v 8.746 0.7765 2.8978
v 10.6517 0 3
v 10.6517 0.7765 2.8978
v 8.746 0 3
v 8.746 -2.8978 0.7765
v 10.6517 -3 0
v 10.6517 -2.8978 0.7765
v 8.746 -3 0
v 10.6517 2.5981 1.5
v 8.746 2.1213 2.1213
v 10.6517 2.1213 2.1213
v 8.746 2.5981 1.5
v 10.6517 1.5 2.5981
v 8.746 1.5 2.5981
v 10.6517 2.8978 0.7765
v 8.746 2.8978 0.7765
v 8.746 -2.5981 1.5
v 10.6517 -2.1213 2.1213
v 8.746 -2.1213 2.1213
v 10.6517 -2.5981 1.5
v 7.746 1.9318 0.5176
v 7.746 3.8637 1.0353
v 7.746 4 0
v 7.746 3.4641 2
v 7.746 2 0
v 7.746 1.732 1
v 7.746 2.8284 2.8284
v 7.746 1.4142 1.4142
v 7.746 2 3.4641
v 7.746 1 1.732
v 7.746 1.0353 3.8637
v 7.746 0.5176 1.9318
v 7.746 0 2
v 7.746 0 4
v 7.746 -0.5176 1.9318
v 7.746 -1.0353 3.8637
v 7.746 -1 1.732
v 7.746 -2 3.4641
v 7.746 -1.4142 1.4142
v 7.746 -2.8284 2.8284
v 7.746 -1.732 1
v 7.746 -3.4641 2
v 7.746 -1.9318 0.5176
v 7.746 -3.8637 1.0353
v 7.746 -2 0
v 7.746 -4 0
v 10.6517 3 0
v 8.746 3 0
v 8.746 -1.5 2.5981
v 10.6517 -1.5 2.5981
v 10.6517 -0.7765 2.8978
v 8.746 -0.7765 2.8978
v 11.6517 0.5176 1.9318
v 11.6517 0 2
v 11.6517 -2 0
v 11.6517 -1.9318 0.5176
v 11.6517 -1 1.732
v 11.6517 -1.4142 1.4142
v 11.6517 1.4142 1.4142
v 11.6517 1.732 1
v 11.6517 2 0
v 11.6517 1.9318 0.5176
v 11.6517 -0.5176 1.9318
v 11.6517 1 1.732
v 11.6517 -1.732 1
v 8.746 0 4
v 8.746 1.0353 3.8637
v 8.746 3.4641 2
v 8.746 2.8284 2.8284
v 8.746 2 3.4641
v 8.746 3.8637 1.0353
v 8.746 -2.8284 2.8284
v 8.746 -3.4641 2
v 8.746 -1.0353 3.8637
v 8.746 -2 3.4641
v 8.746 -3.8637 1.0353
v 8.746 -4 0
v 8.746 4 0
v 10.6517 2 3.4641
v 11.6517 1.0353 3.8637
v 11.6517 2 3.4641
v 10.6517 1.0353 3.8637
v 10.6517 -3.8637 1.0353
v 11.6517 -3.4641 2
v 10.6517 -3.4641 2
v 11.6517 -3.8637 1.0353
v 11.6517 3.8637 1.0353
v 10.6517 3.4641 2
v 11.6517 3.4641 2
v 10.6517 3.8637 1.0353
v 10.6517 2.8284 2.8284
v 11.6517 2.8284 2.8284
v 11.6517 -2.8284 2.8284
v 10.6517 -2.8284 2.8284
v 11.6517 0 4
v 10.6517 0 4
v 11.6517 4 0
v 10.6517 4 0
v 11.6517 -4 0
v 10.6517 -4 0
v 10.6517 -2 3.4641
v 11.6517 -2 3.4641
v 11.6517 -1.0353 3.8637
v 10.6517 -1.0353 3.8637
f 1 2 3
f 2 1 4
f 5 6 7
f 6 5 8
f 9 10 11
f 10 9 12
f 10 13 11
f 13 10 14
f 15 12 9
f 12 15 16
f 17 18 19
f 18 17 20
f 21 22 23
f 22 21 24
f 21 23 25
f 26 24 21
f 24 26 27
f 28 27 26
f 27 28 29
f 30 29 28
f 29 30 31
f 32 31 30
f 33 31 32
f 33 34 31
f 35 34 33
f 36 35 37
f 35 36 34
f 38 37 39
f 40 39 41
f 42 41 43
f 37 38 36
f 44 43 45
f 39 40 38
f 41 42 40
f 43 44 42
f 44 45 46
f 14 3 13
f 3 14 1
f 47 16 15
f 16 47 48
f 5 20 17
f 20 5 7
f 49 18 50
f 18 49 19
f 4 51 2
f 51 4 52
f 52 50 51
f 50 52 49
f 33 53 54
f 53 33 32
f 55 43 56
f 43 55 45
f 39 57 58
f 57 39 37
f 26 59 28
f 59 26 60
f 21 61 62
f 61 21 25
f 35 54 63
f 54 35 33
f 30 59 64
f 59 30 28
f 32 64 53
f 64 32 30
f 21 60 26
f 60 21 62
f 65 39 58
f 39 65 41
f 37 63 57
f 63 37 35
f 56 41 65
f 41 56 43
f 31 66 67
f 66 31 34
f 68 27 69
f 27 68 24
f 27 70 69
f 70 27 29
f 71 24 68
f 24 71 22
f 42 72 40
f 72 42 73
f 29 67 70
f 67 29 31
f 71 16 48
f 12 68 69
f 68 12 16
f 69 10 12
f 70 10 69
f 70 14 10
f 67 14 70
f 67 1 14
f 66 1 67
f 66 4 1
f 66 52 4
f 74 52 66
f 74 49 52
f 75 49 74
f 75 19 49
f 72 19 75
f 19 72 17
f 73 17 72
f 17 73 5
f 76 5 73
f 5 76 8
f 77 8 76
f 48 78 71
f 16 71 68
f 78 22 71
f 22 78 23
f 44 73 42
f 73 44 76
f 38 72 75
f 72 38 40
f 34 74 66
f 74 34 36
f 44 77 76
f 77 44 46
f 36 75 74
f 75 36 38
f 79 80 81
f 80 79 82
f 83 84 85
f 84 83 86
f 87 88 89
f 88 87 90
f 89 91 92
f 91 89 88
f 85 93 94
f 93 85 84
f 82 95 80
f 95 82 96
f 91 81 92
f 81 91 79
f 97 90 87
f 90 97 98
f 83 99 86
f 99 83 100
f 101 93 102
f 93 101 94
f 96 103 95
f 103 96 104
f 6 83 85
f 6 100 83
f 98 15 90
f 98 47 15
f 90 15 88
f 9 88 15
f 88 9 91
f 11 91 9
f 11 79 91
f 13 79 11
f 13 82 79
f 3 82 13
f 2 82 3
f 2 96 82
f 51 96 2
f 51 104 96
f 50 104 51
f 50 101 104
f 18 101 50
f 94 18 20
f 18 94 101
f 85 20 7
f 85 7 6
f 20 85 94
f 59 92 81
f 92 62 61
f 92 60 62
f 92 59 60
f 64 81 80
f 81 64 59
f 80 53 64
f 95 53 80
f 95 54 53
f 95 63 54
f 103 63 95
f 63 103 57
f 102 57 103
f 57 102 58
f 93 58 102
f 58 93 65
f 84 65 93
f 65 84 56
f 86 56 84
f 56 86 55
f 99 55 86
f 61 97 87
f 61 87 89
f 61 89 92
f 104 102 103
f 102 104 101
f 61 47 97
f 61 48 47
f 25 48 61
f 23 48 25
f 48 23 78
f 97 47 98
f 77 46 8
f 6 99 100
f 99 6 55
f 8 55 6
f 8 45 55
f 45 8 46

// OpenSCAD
// file: ../build_environments.scad
// build_environments.scad: modules to build level sections
//

module pool(diameter=10.0, wall_height=2.0, step_width=3.0, connections=[])
{
    difference() {
        union() {
        difference() {
            cylinder(h=0.5,r1=diameter+step_width,r2=diameter+step_width,$fn=48);
            translate([0,0,-0.1])
                cylinder(h=0.7,r1=diameter,r2=diameter,$fn=48);
        }
        difference() {
            cylinder(h=wall_height,r1=diameter+step_width+1.0,r2=diameter+step_width+1.0,$fn=48);
            translate([0,0,-0.1])
                cylinder(h=wall_height+0.2,r1=diameter+step_width,r2=diameter+step_width,$fn=48);
        }
        }
    
        for (c = connections)
        {
            rotate([0,90,0]) {
                angle = atan2(c[1],c[0]);
                rotate([-angle,0,0]) {
                    cylinder(h=diameter+5.0,r1=c[2],r2=c[2],$fn=48);
                }
            }
        }
    }
}

module straight(length=10.0, width=2.0, dy1=0.0, dy2=0.0, dz=0.0)
{
    dims = [0, 0, 0, 0, 0, (dz/length)];
    matrix = [
        [ 1, dims[0], dims[1], 0 ],
        [ dims[2], 1, dims[4], 0 ],
        [ dims[5], dims[3], 1, 0 ],
        [ 0, 0, 0, 1 ]
    ];
    multmatrix(matrix)
    difference() {
        translate([dy1,0,0])
        union() {
            rotate([0,90,0]) {
                difference() {
                    cylinder(h=(length-dy1-dy2),r1=width+1.0,r2=width+1.0,$fn=24);
                    translate([0,0,-0.1])
                        cylinder(h=(length-dy1-dy2+0.2),r1=width,r2=width,$fn=24);
                }
                difference() {
                    cylinder(h=1.0,r1=width+2.0,r2=width+2.0,$fn=24);
                    translate([0,0,-0.1])
                        cylinder(h=1.2,r1=width,r2=width,$fn=24);
                }
                translate([0,0,(length-dy1-dy2)-1.0]) {
                    difference() {
                        cylinder(h=1.0,r1=width+2.0,r2=width+2.0,$fn=24);
                        translate([0,0,-0.1])
                            cylinder(h=1.2,r1=width,r2=width,$fn=24);
                    }
                }
            }
        }
        translate([0,0,-(2*width+4.0)/2])
            cube([3*length,3*length,2*width+4.0],center=true);
    }
}

module curve(p0=[0,0], center=[0,0], dir=1, angle=0.0, width=2.0)
{
    radius = sqrt((p0[0]-center[0])*(p0[0]-center[0]) + (p0[1]-center[1])*(p0[1]-center[1]));
    if (dir == 0) {
        difference() {
            rotate([0,0,-90])
            difference() {
                rotate_extrude(angle = angle, convexity = 10, $fn=32)
                    translate([radius, 0, 0])
                        circle(r = width+1.0,$fn=24);
                rotate([0,0,-1.0])
                    rotate_extrude(angle = angle+2.0, convexity = 10, $fn=32)
                        translate([radius, 0, 0])
                            circle(r = width,$fn=24);
            }
            translate([0,0,-(2*width+4.0)/2])
                cube([5*radius,5*radius,2*width+4.0],center=true);
        }
    }
    else {
        difference() {
            rotate([0,0,90])
            difference() {
                rotate_extrude(angle = -angle, convexity = 10, $fn=32)
                    translate([radius, 0, 0])
                        circle(r = width+1.0,$fn=24);
                rotate([0,0,1.0])
                    rotate_extrude(angle = -angle-2.0, convexity = 10, $fn=32)
                        translate([radius, 0, 0])
                            circle(r = width,$fn=24);
            }
            translate([0,0,-(2*width+4.0)/2])
                cube([5*radius,5*radius,2*width+4.0],center=true);
        }
    }

}

// test pool
//pool(diameter=12.0000, wall_height=3.0000, step_width=3.0000, connections=[[0.0000,-26.0000,2.0000], [23.6074,0.0000,2.0000]]);

// test straight, slope
//straight(length=26.0000, width=2.0000, dy1=11.8322, dy2=6.7082, dz=0.0000);
//straight(length=29.1549, width=12.0000, dy1=0.0000, dy2=0.0000, dz=-15.0000);

// test curve
//curve(p0=[23.6074, 0.0000], center=[23.6074, 5.0000], dir=0, angle=60.1011, width=2.0000);
//curve(p0=[33.6426, 12.4219], center=[37.9771, 9.9295], dir=1, angle=120.4627, width=2.0000);
// main file
use <../build_environments.scad>;
straight(length=11.6517, width=2.0000, dy1=7.7460, dy2=0.0000, dz=0.0000);
